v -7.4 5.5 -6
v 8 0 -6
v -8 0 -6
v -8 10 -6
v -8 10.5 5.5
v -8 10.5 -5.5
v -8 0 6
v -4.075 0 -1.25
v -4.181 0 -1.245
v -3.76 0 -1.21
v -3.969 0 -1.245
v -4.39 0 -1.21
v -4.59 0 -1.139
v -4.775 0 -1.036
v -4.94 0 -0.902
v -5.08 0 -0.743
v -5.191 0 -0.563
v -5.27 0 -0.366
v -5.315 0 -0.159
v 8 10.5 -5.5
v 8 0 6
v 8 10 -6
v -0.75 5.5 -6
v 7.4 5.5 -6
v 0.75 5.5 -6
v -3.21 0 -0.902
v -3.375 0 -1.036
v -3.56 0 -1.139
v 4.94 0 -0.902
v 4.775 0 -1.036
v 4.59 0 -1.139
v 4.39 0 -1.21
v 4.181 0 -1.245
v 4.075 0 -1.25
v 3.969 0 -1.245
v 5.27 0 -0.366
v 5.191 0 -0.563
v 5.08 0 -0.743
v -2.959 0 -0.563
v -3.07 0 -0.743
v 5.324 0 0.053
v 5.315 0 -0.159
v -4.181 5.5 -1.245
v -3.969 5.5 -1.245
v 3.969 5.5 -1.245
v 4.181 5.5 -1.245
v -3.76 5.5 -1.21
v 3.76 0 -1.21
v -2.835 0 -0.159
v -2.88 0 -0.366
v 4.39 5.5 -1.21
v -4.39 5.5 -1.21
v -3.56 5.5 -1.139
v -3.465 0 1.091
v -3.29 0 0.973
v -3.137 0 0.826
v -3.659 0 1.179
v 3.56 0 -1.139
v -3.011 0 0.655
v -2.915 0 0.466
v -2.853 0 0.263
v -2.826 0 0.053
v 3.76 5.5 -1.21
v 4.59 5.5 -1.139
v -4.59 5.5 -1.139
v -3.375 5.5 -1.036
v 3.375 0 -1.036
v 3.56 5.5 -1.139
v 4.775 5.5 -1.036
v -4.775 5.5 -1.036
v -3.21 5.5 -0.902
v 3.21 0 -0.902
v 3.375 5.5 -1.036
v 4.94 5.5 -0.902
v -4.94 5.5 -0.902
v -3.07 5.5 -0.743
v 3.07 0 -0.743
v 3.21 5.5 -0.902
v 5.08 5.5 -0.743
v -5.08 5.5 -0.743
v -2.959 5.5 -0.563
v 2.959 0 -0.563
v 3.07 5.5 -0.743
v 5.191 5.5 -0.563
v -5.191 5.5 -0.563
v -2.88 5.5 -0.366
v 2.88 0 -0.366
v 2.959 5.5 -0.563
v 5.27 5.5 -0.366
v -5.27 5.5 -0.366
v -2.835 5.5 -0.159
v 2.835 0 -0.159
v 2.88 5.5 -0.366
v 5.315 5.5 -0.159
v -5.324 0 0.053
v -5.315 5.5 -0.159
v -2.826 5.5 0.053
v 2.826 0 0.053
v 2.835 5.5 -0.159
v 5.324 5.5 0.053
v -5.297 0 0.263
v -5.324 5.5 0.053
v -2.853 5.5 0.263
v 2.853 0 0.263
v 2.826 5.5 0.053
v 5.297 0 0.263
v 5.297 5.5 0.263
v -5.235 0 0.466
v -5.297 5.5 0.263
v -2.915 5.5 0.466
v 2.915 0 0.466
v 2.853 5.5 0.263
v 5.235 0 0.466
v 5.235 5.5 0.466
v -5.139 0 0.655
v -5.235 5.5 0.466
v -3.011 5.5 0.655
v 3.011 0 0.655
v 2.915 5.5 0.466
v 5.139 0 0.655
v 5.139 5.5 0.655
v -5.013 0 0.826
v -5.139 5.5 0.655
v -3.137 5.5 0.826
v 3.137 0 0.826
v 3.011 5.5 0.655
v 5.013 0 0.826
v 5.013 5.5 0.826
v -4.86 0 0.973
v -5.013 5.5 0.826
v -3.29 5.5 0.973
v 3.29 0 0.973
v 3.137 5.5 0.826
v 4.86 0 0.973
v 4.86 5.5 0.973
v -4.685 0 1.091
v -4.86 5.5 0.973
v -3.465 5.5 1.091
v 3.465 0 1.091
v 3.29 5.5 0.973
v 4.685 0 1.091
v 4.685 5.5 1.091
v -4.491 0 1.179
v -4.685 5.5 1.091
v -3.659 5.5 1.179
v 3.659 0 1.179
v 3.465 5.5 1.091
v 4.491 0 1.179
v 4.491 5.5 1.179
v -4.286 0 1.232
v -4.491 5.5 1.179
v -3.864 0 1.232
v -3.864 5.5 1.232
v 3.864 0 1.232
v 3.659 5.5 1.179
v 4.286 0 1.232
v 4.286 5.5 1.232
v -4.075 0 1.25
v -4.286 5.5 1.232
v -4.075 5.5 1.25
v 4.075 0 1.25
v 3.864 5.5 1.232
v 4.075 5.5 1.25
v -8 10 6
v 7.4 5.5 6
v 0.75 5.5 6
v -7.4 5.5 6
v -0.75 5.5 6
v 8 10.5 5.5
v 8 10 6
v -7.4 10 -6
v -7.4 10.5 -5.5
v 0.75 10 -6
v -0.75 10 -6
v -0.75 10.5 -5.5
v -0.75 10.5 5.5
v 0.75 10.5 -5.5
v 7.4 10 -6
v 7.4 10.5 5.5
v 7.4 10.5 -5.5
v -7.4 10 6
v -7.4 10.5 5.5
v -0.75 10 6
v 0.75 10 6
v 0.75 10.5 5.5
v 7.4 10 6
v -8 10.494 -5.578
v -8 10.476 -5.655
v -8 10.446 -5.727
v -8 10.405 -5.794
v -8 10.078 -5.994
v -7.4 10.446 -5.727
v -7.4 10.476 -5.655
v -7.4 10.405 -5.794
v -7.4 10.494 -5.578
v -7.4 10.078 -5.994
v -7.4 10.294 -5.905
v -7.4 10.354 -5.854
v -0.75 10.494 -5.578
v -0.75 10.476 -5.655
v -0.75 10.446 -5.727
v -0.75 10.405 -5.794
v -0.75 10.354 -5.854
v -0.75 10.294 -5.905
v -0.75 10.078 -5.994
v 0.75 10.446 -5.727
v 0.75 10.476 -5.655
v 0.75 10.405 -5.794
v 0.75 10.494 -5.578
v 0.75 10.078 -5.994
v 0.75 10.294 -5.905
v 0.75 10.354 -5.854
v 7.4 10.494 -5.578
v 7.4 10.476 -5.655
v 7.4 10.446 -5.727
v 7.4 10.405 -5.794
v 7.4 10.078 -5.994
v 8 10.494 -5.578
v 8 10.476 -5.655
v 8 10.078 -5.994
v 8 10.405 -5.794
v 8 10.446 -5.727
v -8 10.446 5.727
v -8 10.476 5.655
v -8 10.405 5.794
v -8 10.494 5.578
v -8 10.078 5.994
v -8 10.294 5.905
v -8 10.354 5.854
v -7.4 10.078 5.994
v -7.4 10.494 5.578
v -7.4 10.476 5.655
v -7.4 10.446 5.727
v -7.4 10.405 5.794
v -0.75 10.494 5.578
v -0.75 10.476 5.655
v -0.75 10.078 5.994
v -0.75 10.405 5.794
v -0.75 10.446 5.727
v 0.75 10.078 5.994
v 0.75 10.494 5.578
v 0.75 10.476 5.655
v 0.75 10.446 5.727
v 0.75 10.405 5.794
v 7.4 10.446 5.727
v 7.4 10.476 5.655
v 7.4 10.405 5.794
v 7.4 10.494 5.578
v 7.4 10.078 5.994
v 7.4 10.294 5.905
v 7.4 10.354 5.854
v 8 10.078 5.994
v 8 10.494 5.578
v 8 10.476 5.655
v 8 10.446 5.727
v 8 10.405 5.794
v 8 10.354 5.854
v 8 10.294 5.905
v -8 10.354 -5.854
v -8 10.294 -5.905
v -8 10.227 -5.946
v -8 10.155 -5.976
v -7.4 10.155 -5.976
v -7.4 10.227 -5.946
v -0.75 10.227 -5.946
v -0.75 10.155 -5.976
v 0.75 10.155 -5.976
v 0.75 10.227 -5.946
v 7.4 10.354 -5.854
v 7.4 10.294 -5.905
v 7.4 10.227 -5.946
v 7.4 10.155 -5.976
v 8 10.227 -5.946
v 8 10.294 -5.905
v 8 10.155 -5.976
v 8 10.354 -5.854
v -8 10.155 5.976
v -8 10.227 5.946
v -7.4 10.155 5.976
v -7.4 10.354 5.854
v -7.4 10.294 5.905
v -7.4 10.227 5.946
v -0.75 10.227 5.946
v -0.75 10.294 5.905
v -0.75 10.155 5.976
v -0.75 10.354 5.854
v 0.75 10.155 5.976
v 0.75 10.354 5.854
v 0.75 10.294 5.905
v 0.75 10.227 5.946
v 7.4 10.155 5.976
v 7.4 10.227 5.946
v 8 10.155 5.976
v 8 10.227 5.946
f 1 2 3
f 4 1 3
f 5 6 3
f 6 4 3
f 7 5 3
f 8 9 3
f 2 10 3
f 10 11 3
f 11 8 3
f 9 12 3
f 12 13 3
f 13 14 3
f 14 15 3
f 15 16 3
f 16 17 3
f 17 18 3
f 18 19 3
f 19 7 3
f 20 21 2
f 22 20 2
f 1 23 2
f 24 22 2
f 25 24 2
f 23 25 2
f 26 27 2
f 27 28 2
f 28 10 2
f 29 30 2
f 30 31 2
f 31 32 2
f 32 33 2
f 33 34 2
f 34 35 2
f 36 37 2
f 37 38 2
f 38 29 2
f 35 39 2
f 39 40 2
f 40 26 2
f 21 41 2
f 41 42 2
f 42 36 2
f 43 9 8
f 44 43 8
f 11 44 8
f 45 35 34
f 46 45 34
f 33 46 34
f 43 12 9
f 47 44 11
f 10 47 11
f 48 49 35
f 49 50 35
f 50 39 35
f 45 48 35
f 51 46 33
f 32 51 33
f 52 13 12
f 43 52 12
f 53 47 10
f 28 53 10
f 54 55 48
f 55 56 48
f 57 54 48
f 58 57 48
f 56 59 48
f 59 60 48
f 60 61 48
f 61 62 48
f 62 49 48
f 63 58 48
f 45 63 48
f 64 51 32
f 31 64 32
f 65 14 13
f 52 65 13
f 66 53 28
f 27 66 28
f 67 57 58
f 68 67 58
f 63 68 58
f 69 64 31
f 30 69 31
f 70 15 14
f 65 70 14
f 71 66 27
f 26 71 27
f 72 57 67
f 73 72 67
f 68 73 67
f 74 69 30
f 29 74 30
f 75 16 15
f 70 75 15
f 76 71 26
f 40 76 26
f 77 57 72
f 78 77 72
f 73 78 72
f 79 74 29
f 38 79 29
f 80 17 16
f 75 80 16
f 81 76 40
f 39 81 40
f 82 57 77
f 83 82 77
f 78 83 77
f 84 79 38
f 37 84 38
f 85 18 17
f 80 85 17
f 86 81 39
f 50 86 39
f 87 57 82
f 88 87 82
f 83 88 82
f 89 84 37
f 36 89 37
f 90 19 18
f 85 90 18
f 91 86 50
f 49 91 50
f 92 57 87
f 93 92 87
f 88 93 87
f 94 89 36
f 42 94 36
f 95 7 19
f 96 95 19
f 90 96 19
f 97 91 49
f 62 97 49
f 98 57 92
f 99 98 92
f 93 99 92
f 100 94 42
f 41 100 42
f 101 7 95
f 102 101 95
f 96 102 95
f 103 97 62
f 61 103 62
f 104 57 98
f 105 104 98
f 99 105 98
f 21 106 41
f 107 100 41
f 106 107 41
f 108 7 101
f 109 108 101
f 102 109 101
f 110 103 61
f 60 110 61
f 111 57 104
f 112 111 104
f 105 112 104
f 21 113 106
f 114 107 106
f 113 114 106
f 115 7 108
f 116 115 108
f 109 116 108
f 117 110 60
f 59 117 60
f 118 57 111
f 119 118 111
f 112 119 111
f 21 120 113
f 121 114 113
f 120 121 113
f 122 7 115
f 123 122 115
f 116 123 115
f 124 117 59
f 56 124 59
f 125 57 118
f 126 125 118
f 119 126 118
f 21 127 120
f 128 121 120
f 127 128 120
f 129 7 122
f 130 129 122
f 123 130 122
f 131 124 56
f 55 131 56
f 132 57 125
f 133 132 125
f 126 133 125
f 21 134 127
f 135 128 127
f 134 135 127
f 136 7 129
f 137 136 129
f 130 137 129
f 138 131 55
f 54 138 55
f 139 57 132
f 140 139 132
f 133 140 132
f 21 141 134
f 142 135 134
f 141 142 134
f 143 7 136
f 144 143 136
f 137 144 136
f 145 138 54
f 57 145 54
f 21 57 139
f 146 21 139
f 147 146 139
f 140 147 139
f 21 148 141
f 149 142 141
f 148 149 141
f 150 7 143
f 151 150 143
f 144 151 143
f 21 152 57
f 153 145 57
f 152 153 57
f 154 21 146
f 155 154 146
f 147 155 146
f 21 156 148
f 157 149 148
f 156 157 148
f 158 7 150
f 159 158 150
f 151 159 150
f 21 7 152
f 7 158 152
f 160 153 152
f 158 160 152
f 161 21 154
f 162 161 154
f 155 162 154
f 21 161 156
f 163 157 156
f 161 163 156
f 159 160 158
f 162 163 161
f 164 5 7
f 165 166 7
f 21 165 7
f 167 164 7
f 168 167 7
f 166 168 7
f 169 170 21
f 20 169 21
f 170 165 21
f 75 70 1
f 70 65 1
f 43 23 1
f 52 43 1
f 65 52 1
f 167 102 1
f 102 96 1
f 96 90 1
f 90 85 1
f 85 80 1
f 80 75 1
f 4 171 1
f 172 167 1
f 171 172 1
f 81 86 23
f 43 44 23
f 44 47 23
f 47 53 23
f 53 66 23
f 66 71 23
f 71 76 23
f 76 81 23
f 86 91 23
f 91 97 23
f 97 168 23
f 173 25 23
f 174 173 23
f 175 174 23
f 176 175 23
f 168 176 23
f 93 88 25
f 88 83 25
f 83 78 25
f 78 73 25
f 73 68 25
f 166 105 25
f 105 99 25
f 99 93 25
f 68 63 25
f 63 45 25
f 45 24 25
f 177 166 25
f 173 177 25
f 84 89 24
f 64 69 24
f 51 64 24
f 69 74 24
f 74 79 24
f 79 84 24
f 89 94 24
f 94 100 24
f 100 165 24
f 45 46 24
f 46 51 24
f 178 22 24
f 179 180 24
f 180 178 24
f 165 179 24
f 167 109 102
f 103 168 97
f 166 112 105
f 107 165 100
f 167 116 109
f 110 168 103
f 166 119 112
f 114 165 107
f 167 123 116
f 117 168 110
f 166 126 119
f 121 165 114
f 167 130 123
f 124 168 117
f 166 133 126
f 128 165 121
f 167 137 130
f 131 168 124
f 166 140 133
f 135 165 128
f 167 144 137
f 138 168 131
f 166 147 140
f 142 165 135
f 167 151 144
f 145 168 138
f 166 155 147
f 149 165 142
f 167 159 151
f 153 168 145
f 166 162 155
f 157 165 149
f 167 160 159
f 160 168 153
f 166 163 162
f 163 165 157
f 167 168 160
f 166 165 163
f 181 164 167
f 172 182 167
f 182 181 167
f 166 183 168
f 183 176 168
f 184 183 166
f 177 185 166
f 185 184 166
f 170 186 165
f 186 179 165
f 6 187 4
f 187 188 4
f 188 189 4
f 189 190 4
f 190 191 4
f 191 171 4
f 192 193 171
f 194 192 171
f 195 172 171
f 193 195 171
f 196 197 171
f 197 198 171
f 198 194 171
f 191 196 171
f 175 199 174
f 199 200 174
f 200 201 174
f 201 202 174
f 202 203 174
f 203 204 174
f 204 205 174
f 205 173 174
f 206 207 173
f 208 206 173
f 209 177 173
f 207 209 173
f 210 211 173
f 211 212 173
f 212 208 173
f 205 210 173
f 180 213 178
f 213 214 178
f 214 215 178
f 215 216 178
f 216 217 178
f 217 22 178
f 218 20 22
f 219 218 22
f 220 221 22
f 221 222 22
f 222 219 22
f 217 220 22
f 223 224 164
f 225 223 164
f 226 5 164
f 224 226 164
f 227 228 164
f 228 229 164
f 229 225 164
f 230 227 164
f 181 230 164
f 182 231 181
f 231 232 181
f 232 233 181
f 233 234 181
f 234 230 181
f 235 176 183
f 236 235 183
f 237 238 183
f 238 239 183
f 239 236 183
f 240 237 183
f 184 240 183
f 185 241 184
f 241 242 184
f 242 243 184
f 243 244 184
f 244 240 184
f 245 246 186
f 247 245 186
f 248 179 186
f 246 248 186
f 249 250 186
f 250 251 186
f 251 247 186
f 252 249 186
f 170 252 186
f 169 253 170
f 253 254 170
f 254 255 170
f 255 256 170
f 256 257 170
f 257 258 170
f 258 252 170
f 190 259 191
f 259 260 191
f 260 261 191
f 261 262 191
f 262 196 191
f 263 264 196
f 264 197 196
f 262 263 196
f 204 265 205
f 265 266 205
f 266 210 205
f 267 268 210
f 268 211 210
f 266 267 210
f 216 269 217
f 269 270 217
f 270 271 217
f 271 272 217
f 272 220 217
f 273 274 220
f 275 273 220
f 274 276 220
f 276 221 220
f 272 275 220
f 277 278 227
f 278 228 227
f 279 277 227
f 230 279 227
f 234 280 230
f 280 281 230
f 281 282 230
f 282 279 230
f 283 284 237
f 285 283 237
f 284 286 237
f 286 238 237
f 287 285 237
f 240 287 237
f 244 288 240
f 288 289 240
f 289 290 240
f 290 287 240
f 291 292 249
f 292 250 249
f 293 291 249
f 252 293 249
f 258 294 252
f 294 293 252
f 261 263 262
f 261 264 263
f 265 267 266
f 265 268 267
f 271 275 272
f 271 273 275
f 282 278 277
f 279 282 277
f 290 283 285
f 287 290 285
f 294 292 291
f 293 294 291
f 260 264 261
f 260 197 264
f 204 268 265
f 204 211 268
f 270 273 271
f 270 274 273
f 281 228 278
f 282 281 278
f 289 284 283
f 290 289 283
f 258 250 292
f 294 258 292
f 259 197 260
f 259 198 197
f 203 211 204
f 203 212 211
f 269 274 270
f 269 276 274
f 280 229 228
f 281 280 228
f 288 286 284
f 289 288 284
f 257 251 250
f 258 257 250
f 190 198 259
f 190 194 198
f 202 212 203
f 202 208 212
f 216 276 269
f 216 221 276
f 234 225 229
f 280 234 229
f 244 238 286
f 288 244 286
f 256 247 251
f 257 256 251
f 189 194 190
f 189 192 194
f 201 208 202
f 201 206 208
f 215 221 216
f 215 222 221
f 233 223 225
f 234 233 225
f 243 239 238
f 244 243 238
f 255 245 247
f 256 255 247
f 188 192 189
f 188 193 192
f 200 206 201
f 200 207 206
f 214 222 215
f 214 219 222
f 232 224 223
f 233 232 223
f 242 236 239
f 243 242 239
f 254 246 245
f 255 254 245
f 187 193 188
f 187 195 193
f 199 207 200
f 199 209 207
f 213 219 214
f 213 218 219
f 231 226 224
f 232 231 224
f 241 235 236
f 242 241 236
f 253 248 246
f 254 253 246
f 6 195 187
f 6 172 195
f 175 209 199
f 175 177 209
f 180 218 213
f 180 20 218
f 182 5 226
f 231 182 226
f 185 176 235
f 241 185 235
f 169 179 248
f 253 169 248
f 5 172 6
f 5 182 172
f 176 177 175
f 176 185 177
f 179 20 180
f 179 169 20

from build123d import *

# Parameters (mm, degrees)
SKETCH1_W             = 16
SKETCH1_H             = 12
BOSS_EXTRUDE1_DEPTH   = 5.5
SKETCH2_W             = 0.6
SKETCH2_H             = 12
SKETCH2_W_2           = 1.5
BOSS_EXTRUDE2_DEPTH   = 5
FILLET1_R             = 0.5
M3_TAPPED_HOLE1_D     = 2.5
M3_TAPPED_HOLE1_DEPTH = 10
M3_TAPPED_HOLE1_TIP   = 0.751075774


with BuildPart() as part:
    # Sketch1 → Boss-Extrude1 (new body)
    with BuildSketch(Plane(origin=(0, 0, 0), x_dir=(1, 0, 0), z_dir=(0, 1, 0))):
        Rectangle(SKETCH1_W, SKETCH1_H)
    extrude(amount=BOSS_EXTRUDE1_DEPTH)

    # Sketch2 → Boss-Extrude2 (add)
    with BuildSketch(Plane(origin=(0, 5.5, 0), x_dir=(1, 0, 0), z_dir=(0, 1, 0))):
        with Locations((-7.7, 0)):
            Rectangle(SKETCH2_W, SKETCH2_H)
        with Locations((7.7, 0)):
            Rectangle(SKETCH2_W, SKETCH2_H)
        Rectangle(SKETCH2_W_2, SKETCH2_H)
    extrude(amount=BOSS_EXTRUDE2_DEPTH)

    # Fillet1
    fillet1_edges = [part.edges().sort_by_distance(p)[0] for p in [
        (-7.7, 10.5, 6),
        (-7.7, 10.5, -6),
        (7.7, 10.5, -6),
        (7.7, 10.5, 6),
        (0, 10.5, 6),
        (0, 10.5, -6),
    ]]
    fillet(fillet1_edges, radius=FILLET1_R)

    # M3 Tapped Hole1
    with Locations(Plane(origin=(0, 5.5, 0), x_dir=(1, 0, 0), z_dir=(0, 1, 0))):
        with Locations((-4.075, 0), (4.075, 0)):
            Hole(M3_TAPPED_HOLE1_D / 2, depth=M3_TAPPED_HOLE1_DEPTH)
            with Locations((0, 0, -(M3_TAPPED_HOLE1_DEPTH + M3_TAPPED_HOLE1_TIP / 2))):  # 118° drill point
                Cone(0, M3_TAPPED_HOLE1_D / 2, M3_TAPPED_HOLE1_TIP, mode=Mode.SUBTRACT)


solid = part.part
